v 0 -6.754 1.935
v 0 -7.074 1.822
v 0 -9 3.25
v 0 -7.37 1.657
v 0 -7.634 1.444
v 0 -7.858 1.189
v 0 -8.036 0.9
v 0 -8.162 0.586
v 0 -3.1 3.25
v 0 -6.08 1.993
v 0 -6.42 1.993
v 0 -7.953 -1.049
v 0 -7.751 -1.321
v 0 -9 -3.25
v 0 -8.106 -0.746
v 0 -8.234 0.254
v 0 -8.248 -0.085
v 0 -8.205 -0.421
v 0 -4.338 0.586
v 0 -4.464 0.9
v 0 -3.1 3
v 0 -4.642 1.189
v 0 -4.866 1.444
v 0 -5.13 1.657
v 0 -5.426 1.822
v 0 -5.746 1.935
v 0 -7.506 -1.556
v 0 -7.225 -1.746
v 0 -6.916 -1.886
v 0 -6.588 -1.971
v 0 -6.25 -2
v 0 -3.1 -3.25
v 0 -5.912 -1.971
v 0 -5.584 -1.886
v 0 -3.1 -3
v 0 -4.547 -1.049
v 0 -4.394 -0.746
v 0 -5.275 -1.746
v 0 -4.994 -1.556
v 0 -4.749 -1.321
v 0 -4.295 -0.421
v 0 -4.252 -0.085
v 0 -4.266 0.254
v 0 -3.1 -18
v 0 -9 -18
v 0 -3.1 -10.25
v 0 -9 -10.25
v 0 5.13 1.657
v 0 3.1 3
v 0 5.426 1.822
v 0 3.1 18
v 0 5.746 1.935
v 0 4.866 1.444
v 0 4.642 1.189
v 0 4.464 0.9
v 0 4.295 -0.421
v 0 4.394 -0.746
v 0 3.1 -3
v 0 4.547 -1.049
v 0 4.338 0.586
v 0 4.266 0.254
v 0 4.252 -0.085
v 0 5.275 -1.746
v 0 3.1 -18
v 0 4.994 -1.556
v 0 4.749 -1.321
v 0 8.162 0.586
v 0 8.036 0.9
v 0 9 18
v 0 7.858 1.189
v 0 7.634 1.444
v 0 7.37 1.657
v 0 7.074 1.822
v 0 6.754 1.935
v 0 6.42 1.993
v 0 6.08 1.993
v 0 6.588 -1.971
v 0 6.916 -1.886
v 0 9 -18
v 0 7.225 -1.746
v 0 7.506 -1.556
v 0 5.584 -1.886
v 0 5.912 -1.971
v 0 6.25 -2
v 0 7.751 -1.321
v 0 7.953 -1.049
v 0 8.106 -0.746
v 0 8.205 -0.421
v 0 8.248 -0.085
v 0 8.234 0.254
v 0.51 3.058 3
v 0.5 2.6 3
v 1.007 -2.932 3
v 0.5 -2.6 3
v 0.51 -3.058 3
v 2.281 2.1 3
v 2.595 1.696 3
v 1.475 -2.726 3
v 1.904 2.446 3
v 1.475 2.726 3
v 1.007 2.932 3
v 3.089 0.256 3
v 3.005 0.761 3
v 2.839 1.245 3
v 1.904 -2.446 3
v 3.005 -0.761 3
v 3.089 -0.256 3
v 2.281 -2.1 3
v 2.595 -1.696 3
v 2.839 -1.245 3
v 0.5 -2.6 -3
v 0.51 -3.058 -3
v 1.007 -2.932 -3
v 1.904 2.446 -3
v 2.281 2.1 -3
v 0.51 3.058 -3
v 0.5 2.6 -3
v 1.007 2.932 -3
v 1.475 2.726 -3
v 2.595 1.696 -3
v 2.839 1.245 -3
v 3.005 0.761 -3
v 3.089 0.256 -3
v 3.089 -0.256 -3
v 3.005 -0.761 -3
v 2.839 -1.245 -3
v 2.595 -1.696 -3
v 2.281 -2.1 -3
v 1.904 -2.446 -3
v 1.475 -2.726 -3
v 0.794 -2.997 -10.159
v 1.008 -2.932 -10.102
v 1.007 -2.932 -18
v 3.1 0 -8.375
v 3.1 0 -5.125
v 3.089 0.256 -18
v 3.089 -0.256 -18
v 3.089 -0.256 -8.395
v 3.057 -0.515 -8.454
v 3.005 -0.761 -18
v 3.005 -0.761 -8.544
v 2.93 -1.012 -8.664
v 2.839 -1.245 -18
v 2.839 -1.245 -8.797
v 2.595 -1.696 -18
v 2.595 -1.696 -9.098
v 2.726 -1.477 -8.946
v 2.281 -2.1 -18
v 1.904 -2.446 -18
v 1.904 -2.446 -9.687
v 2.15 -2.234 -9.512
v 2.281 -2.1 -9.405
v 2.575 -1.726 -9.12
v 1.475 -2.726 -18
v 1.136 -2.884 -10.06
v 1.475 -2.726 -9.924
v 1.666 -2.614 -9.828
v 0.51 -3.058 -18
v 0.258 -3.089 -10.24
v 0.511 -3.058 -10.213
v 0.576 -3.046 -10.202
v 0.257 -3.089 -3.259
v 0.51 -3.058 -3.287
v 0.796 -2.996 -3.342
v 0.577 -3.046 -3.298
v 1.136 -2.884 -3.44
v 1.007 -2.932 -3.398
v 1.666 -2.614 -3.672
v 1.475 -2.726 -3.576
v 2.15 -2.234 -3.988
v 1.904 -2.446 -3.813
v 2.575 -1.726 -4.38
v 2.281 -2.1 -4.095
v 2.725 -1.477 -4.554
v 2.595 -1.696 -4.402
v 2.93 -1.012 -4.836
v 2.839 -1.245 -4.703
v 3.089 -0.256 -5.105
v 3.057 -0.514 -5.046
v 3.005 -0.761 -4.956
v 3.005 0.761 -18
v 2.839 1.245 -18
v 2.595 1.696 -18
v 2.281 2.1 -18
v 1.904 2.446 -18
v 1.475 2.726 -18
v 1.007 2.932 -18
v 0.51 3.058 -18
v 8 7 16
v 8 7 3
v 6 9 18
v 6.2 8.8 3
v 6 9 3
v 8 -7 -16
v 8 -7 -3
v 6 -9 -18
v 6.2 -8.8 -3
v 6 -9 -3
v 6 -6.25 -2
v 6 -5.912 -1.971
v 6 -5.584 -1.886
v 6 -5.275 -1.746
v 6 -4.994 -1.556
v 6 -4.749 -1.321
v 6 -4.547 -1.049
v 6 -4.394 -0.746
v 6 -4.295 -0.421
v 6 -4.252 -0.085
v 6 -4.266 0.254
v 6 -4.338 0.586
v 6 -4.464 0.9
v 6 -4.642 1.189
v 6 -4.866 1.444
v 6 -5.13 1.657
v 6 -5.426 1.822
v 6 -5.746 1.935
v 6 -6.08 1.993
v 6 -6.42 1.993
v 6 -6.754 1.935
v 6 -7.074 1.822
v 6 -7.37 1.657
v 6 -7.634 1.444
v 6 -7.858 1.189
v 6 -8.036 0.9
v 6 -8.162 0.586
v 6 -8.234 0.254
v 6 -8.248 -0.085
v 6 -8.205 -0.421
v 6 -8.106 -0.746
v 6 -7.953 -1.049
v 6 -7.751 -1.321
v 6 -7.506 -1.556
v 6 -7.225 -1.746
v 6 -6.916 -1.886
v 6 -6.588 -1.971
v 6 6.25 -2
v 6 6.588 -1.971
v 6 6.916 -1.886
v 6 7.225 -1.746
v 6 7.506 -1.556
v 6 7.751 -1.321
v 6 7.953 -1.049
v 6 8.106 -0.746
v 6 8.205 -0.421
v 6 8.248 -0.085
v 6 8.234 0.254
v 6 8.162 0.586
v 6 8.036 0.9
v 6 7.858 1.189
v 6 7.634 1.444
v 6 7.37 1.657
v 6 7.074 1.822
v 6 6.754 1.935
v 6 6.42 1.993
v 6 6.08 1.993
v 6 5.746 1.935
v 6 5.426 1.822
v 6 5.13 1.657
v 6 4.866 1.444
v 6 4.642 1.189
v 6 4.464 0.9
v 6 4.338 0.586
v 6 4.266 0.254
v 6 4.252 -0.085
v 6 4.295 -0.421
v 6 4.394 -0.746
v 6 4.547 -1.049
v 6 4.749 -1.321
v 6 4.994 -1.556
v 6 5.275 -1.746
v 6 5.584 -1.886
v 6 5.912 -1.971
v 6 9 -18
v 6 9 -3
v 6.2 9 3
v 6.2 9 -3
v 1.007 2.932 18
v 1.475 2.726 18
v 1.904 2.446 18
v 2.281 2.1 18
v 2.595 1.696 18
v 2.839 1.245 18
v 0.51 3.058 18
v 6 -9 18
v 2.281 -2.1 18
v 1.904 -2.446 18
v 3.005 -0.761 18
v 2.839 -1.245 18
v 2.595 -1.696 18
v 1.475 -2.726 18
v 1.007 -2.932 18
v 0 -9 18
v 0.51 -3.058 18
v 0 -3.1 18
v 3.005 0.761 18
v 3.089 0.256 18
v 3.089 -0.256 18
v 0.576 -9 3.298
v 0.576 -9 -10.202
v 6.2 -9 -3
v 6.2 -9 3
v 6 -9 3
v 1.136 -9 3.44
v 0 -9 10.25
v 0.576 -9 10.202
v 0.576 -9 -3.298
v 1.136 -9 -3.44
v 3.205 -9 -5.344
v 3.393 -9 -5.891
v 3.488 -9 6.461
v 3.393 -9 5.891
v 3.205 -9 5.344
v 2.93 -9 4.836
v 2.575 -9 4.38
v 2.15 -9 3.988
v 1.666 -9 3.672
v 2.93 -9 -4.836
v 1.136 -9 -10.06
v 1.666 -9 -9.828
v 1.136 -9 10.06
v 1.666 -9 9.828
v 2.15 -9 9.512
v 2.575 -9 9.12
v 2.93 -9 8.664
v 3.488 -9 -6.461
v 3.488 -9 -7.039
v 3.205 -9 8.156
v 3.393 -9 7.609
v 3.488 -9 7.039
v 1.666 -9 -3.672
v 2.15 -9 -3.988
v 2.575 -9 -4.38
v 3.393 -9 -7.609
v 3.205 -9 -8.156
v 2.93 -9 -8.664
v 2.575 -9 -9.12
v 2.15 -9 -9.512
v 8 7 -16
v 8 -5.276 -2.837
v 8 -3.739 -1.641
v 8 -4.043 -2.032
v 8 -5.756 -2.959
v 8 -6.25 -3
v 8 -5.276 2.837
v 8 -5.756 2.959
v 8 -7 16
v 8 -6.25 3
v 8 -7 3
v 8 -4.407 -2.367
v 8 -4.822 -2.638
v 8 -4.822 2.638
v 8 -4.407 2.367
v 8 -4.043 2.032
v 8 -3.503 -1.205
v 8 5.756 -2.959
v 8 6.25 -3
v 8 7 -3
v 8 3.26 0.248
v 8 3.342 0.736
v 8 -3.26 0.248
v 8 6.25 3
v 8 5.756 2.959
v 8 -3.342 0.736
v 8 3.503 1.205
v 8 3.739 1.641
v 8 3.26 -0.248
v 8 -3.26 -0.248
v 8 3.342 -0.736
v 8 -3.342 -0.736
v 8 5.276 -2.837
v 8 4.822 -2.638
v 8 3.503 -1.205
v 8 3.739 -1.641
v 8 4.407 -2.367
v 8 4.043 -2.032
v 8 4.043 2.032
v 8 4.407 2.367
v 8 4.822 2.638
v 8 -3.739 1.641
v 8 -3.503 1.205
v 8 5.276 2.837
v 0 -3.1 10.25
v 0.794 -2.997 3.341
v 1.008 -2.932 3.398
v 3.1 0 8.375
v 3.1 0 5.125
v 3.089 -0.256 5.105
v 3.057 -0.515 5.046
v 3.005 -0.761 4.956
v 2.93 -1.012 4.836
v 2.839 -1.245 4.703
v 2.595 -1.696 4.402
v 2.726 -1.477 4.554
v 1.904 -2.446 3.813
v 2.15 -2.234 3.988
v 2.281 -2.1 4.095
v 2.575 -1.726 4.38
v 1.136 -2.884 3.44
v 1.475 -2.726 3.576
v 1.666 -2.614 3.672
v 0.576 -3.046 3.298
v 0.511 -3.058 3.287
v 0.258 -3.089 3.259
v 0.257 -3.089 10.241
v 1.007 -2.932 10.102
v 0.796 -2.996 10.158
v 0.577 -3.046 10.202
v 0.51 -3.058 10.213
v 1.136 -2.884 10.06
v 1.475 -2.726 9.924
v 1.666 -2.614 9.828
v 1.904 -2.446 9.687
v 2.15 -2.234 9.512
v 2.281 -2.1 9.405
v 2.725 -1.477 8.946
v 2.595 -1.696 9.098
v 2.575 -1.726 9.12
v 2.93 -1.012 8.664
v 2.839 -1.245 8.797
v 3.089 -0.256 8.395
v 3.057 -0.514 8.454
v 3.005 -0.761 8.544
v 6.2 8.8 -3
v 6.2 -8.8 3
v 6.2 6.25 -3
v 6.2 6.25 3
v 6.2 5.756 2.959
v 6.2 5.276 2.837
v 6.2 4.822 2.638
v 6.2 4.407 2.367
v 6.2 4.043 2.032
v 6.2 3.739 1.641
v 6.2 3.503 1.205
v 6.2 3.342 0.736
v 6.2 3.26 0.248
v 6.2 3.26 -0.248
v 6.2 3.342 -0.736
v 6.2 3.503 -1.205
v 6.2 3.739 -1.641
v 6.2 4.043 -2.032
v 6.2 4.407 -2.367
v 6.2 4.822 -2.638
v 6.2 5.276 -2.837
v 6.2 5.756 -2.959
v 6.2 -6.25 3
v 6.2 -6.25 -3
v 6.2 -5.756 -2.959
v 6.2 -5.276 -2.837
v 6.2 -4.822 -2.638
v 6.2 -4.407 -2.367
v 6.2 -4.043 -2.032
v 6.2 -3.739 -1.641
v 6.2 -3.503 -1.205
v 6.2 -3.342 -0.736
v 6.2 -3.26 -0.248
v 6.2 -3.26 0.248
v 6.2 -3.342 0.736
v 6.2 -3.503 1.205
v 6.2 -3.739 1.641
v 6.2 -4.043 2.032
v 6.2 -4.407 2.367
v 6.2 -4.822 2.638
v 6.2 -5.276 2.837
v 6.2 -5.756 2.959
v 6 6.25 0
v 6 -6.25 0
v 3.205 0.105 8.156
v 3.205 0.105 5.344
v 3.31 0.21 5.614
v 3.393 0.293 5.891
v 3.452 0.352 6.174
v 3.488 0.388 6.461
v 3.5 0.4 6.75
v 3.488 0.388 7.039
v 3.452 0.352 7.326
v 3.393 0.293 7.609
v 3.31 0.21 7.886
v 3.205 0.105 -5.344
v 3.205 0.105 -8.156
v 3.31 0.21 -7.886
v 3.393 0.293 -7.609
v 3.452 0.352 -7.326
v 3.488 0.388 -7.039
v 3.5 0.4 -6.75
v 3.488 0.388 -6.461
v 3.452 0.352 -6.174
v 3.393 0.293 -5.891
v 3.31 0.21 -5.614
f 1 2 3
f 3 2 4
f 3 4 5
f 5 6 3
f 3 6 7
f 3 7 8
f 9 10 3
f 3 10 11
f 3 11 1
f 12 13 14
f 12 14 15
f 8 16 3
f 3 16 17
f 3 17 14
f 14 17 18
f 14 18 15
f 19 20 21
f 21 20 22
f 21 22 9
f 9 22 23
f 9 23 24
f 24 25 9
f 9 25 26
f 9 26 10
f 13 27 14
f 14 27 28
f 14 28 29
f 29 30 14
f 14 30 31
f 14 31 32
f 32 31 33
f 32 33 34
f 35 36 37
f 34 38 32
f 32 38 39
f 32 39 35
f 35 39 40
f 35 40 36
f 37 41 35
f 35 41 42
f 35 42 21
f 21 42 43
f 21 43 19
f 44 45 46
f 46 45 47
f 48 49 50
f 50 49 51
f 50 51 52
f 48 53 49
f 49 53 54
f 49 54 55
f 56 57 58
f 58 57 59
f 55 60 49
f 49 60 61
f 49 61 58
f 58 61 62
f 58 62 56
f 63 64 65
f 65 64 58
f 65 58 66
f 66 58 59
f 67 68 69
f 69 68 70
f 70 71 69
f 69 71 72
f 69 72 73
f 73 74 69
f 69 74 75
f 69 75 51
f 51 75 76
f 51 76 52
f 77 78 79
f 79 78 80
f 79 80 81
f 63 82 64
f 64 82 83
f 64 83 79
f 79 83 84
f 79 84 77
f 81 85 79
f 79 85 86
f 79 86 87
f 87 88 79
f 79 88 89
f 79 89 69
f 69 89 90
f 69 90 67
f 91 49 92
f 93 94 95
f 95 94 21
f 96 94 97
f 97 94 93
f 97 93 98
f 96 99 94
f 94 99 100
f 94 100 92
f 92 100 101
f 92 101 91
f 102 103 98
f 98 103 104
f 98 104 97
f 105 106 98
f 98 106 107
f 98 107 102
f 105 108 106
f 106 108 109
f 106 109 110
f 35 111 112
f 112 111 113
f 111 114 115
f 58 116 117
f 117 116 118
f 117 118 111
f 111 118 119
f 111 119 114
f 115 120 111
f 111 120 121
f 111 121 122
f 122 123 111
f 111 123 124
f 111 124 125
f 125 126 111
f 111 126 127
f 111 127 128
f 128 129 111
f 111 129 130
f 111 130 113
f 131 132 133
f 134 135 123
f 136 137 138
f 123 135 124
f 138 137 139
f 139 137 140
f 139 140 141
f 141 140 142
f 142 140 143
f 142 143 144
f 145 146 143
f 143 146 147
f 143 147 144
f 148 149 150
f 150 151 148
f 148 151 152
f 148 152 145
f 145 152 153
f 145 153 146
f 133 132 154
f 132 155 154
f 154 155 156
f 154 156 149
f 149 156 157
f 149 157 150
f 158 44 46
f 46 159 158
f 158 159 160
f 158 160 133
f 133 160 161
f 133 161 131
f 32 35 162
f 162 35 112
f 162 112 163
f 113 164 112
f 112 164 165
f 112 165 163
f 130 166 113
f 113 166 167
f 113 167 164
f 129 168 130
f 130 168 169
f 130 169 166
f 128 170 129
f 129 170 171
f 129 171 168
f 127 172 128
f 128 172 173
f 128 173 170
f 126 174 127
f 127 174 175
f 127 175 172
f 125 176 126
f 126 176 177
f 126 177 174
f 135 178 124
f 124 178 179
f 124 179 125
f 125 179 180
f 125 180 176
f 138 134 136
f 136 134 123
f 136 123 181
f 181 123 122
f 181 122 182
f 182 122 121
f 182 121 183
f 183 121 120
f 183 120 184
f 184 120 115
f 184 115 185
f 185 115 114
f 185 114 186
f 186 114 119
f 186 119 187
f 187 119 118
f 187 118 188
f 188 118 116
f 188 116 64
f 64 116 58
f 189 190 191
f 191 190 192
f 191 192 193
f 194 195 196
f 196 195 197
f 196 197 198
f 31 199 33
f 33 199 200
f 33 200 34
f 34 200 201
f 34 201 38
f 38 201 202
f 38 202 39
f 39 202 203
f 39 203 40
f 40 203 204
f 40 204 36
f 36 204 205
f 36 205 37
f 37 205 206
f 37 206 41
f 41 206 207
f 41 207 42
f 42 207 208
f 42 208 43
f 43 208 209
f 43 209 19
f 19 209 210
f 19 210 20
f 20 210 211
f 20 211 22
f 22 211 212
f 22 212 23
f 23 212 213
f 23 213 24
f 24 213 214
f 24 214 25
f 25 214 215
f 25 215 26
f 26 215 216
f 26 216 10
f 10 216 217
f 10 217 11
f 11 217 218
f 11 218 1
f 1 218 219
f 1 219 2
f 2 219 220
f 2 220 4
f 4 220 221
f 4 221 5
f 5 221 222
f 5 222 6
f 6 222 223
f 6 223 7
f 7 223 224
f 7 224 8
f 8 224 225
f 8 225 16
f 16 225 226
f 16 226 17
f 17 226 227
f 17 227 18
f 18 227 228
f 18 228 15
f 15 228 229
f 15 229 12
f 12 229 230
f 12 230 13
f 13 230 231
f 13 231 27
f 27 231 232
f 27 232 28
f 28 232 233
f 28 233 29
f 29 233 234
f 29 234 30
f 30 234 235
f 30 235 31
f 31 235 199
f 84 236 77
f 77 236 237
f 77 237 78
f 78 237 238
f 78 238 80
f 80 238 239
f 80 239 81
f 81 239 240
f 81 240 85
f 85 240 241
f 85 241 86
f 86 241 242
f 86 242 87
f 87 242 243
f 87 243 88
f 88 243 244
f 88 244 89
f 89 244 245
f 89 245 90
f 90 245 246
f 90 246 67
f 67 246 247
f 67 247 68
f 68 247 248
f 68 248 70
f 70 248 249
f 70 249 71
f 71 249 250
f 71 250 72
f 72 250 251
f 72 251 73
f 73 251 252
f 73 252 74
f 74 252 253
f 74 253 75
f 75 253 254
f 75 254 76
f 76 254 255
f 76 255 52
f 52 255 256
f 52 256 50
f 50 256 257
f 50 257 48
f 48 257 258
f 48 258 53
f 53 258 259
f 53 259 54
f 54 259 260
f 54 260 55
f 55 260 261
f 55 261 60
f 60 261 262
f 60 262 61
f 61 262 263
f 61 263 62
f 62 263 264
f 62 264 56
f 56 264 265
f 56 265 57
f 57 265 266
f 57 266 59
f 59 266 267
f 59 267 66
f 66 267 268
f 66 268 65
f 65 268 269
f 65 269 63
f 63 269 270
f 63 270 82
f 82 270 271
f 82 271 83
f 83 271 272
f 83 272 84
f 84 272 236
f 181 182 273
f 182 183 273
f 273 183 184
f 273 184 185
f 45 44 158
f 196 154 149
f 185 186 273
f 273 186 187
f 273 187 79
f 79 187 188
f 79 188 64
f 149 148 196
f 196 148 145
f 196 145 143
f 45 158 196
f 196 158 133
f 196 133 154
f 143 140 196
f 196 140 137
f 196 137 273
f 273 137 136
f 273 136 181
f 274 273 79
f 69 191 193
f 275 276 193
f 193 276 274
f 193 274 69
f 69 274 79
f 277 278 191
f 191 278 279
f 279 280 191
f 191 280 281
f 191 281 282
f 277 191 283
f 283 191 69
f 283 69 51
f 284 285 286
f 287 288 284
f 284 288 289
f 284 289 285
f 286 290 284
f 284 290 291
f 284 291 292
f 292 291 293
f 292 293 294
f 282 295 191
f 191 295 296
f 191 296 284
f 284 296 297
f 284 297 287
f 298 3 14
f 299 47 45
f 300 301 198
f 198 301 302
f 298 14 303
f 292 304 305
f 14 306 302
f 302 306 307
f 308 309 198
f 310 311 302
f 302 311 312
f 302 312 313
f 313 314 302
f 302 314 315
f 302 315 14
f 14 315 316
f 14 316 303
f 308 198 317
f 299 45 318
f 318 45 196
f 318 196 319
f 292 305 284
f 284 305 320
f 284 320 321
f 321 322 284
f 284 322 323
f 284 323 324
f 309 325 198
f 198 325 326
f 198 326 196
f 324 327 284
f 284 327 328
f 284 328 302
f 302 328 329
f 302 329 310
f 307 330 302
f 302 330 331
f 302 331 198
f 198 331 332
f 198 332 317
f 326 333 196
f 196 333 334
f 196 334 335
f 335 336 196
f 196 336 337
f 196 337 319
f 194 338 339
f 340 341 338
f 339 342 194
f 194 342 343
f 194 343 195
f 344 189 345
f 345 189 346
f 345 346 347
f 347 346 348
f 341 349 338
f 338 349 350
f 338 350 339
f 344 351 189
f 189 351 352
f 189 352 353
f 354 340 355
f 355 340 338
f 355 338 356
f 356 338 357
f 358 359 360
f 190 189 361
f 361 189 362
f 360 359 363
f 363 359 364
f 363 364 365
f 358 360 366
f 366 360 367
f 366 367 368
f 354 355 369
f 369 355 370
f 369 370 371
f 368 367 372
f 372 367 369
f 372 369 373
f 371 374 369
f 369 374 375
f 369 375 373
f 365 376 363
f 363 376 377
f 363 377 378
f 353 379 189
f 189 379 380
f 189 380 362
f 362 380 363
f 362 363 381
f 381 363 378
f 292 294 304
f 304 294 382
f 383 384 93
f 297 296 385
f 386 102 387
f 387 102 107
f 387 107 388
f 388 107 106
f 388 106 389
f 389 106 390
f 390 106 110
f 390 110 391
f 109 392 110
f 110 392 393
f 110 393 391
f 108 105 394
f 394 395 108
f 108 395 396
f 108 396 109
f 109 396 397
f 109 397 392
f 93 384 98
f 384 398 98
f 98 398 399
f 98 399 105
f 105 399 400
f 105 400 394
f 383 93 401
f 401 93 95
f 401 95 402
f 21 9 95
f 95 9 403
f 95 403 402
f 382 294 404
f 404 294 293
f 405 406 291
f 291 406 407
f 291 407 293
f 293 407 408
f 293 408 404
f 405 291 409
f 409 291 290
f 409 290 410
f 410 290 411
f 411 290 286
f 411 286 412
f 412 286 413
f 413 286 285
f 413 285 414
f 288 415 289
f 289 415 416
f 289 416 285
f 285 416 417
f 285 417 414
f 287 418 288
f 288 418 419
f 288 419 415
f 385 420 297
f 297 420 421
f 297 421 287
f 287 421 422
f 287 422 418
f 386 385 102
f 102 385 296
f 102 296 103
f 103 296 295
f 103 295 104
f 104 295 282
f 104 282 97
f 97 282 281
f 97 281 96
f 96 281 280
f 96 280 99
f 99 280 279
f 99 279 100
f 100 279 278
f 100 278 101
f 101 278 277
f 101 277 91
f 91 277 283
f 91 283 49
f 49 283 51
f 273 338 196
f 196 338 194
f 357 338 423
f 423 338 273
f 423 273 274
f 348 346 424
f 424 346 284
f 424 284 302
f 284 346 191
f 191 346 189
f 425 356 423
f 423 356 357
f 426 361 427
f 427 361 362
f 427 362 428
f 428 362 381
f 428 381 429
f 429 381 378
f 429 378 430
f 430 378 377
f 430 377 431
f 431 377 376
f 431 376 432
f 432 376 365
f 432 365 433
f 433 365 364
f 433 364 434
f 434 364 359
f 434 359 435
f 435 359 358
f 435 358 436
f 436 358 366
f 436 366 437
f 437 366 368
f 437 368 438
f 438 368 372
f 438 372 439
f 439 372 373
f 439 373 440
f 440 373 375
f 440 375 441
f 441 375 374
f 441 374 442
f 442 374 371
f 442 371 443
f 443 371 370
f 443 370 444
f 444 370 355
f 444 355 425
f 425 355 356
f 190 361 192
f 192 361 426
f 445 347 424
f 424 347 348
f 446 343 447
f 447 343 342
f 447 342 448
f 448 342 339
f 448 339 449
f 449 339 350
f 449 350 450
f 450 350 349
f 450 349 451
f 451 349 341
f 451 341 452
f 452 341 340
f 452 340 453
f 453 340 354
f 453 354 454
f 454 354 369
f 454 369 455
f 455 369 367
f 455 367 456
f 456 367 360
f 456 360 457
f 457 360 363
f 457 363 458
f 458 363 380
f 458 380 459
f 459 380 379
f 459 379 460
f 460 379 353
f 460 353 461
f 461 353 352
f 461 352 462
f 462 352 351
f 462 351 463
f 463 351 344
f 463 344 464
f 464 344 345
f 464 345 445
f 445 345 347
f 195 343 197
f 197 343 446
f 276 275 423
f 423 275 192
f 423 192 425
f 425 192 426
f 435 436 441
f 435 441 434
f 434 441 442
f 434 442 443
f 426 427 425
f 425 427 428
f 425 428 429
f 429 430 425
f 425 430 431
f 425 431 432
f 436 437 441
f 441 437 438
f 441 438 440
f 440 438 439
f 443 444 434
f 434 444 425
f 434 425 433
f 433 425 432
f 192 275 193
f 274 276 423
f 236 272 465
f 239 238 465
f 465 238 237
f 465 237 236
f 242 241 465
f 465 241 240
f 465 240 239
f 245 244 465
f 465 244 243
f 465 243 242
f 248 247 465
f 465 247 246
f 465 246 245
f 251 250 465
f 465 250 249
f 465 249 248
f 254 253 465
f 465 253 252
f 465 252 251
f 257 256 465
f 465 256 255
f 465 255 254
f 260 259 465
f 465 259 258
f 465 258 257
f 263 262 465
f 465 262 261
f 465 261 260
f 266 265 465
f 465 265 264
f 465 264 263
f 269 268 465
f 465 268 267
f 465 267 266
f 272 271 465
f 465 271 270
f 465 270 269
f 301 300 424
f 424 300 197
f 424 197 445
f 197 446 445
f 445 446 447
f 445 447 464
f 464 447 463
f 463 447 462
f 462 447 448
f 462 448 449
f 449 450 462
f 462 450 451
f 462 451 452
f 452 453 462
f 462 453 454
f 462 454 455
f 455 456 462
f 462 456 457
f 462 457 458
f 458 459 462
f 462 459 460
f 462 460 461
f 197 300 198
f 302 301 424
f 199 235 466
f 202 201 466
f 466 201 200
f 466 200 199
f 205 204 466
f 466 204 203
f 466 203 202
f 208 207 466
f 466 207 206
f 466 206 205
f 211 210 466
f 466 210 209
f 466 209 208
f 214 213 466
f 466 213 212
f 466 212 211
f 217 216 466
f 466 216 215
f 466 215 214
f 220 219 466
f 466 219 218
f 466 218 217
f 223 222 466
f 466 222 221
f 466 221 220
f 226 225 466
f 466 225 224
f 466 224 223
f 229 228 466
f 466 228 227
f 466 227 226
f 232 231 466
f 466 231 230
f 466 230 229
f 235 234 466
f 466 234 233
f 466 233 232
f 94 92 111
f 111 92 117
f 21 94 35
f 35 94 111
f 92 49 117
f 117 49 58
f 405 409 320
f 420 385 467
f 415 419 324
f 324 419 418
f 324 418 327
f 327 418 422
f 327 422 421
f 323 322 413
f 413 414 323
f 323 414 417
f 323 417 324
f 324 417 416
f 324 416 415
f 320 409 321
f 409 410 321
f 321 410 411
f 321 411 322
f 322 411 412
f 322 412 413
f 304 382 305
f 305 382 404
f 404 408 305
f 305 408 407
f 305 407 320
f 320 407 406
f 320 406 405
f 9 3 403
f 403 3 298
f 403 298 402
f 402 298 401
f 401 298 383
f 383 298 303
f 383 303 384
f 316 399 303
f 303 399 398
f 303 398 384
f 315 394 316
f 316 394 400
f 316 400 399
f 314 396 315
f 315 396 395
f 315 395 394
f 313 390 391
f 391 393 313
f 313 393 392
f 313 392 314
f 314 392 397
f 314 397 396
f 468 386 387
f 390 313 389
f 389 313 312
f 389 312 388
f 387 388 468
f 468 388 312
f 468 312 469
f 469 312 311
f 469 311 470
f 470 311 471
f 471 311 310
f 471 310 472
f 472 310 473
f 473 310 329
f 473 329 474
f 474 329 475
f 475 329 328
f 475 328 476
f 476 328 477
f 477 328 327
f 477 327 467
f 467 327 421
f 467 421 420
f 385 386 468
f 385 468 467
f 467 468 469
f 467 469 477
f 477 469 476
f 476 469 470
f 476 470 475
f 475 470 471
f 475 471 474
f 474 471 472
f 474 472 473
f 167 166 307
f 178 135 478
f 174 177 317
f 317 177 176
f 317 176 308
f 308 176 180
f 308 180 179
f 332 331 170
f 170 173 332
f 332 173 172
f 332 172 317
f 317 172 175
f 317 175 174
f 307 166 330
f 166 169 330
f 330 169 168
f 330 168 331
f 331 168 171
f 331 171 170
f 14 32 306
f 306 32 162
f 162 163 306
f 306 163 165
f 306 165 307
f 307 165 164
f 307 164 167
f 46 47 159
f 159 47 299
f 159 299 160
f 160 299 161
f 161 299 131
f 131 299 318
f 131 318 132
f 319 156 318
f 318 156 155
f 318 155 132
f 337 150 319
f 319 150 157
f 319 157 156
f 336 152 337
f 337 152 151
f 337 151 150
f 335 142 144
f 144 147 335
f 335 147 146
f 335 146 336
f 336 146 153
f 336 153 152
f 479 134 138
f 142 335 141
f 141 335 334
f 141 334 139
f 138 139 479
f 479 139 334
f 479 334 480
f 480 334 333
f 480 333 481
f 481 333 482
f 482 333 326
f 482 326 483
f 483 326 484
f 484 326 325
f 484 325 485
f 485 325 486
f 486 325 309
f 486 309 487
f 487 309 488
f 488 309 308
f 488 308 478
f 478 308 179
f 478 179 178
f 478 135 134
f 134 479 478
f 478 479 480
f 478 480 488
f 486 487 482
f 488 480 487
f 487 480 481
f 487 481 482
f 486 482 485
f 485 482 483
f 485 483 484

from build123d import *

# Parameters (mm, degrees)
SKETCH_1_W              = 36
SKETCH_1_H              = 18
EXTRUDE_1_DEPTH         = 8
CUT_EXTRUDE_1_DEPTH     = 38.960505792
CHAMFER_1_SIZE          = 2
CUT_EXTRUDE_2_DEPTH     = 22.656407828
CUT_EXTRUDE_START       = -2
CUT_EXTRUDE_3_OUTLINE_R = 2
CUT_EXTRUDE_3_DEPTH     = 2
EXTRUDE_2_DEPTH         = 0.2
EXTRUDE_3_DEPTH         = 3
SKETCH_7_W              = 6
SKETCH_7_H              = 6.2
CUT_EXTRUDE_4_DEPTH     = 0.5
CHAMFER_16_SIZE         = 0.5
CUT_EXTRUDE_5_REACH     = 28.683


# Read off the part's stored shape, not the designer's step: Вырез-Вытянуть3
with BuildPart() as part:
    # Эскиз1 → Бобышка-Вытянуть1 (new body)
    with BuildSketch(Plane(origin=(0, 0, 0), x_dir=(0, 0, -1), z_dir=(1, 0, 0))):
        Rectangle(SKETCH_1_W, SKETCH_1_H)
    extrude(amount=EXTRUDE_1_DEPTH)

    # Эскиз2 → Вырез-Вытянуть1 (cut, through all)
    with BuildSketch(Plane.XY.offset(18)):
        with BuildLine():
            ThreePointArc((0, -3.1), (3.1, 0), (0, 3.1))
            Line((0, 3.1), (0, -3.1))
        make_face()
    extrude(amount=-CUT_EXTRUDE_1_DEPTH, mode=Mode.SUBTRACT)

    # Фаска1
    chamfer_1_edges = [part.edges().sort_by_distance(p)[0] for p in [
        (8, 0, 18),
        (8, -9, 0),
        (8, 0, -18),
        (8, 9, 0),
    ]]
    chamfer(chamfer_1_edges, length=CHAMFER_1_SIZE)

    # Эскиз3 → Вырез-Вытянуть2 (cut, through all)
    with BuildSketch(Plane(origin=(8, 0, 0), x_dir=(0, 0, -1), z_dir=(1, 0, 0))):
        with BuildLine():
            ThreePointArc((1.413329403, 7), (1.552631161, 6.636440782), (1.6, 6.25))
            ThreePointArc((1.6, 6.25), (-0.386440782, 4.697368839), (-1.413329403, 7))
            Line((-1.413329403, 7), (-1.854049622, 7))
            ThreePointArc((-1.854049622, 7), (-0.382034525, 4.286826645), (2, 6.25))
            ThreePointArc((2, 6.25), (1.963173355, 6.632034525), (1.854049622, 7))
            Line((1.854049622, 7), (1.413329403, 7))
        make_face()
        with BuildLine():
            ThreePointArc((-1.413329403, 7), (0, 7.85), (1.413329403, 7))
            Line((1.413329403, 7), (1.854049622, 7))
            ThreePointArc((1.854049622, 7), (0, 8.25), (-1.854049622, 7))
            Line((-1.854049622, 7), (-1.413329403, 7))
        make_face()
        with BuildLine():
            ThreePointArc((-1.413329403, 7), (-0.386440782, 4.697368839), (1.6, 6.25))
            ThreePointArc((1.6, 6.25), (1.552631161, 6.636440782), (1.413329403, 7))
            Line((1.413329403, 7), (-1.413329403, 7))
        make_face()
        with BuildLine():
            Line((-1.413329403, 7), (1.413329403, 7))
            ThreePointArc((1.413329403, 7), (0, 7.85), (-1.413329403, 7))
        make_face()
        with BuildLine():
            ThreePointArc((-1.413329403, -7), (-0.386440782, -4.697368839), (1.6, -6.25))
            ThreePointArc((1.6, -6.25), (1.552631161, -6.636440782), (1.413329403, -7))
            Line((1.413329403, -7), (1.854049622, -7))
            ThreePointArc((1.854049622, -7), (1.963173355, -6.632034525), (2, -6.25))
            ThreePointArc((2, -6.25), (-0.382034525, -4.286826645), (-1.854049622, -7))
            Line((-1.854049622, -7), (-1.413329403, -7))
        make_face()
        with BuildLine():
            ThreePointArc((1.413329403, -7), (0, -7.85), (-1.413329403, -7))
            Line((-1.413329403, -7), (-1.854049622, -7))
            ThreePointArc((-1.854049622, -7), (0, -8.25), (1.854049622, -7))
            Line((1.854049622, -7), (1.413329403, -7))
        make_face()
        with BuildLine():
            ThreePointArc((1.413329403, -7), (1.552631161, -6.636440782), (1.6, -6.25))
            ThreePointArc((1.6, -6.25), (-0.386440782, -4.697368839), (-1.413329403, -7))
            Line((-1.413329403, -7), (1.413329403, -7))
        make_face()
        with BuildLine():
            Line((1.413329403, -7), (-1.413329403, -7))
            ThreePointArc((-1.413329403, -7), (0, -7.85), (1.413329403, -7))
        make_face()
    extrude(amount=-CUT_EXTRUDE_2_DEPTH, mode=Mode.SUBTRACT)

    # Вырез-Вытянуть3 outline → Вырез-Вытянуть3 (cut)
    # profile 1 of 2: a face of its own
    with BuildSketch(Plane(origin=(8, 0, 0), x_dir=(0, 0, -1), z_dir=(1, 0, 0)).offset(CUT_EXTRUDE_START)):
        with BuildLine():
            Line((-3, 9), (-3, 6.25))
            ThreePointArc((-3, 6.25), (0, 3.25), (3, 6.25))
            Line((3, 6.25), (3, 9))
            Line((3, 9), (-3, 9))
        make_face()
        with Locations((0, 6.25)):
            Circle(CUT_EXTRUDE_3_OUTLINE_R, mode=Mode.SUBTRACT)
    # profile 2 of 2: a face of its own
    with BuildSketch(Plane(origin=(8, 0, 0), x_dir=(0, 0, -1), z_dir=(1, 0, 0)).offset(CUT_EXTRUDE_START)):
        with BuildLine():
            Line((3, -9), (3, -6.25))
            ThreePointArc((3, -6.25), (0, -3.25), (-3, -6.25))
            Line((-3, -6.25), (-3, -9))
            Line((-3, -9), (3, -9))
        make_face()
        with Locations((0, -6.25)):
            Circle(CUT_EXTRUDE_3_OUTLINE_R, mode=Mode.SUBTRACT)
    extrude(amount=CUT_EXTRUDE_3_DEPTH, mode=Mode.SUBTRACT)

    # Эскиз5 → Бобышка-Вытянуть2 (add)
    with BuildSketch(Plane(origin=(6, 0, 0), x_dir=(0, 0, -1), z_dir=(1, 0, 0))):
        with BuildLine():
            Line((3, 9), (-3, 9))
            Line((-3, 9), (-3, 6.25))
            ThreePointArc((-3, 6.25), (0, 3.25), (3, 6.25))
            Line((3, 6.25), (3, 9))
        make_face()
        with BuildLine():
            Line((-3, -9), (3, -9))
            Line((3, -9), (3, -6.25))
            ThreePointArc((3, -6.25), (0, -3.25), (-3, -6.25))
            Line((-3, -6.25), (-3, -9))
        make_face()
    extrude(amount=EXTRUDE_2_DEPTH)

    # Эскиз6 → Бобышка-Вытянуть3 (add, symmetric)
    with BuildSketch(Plane.XY):
        with BuildLine():
            Line((0, 3.1), (0, -3.1))
            ThreePointArc((0, -3.1), (3.1, 0), (0, 3.1))
        make_face()
    extrude(amount=EXTRUDE_3_DEPTH, both=True)

    # Эскиз7 → Вырез-Вытянуть4 (cut, symmetric)
    with BuildSketch(Plane.ZY):
        Rectangle(SKETCH_7_W, SKETCH_7_H)
    extrude(amount=CUT_EXTRUDE_4_DEPTH, both=True, mode=Mode.SUBTRACT)

    # Фаска16
    # the kernel refuses this chamfer: 0.5 mm, written as the material it adds along each edge
    with BuildSketch(Plane(origin=(0.5, 3.1, 3), x_dir=(-0.9996219169112968, 0.027495876610586494, 0), z_dir=(0, 0, -1))) as chamfer_16_piece_1_section:
        Polygon((CHAMFER_16_SIZE * 0.999621916911, -CHAMFER_16_SIZE * 0.0274958766106), (-CHAMFER_16_SIZE * 0.0274958766106, -CHAMFER_16_SIZE * 0.999621916911), (0, 0), align=None)
    chamfer_16_piece_1 = extrude(amount=6, mode=Mode.PRIVATE)
    chamfer_16_piece_1 = split(chamfer_16_piece_1, bisect_by=Plane(origin=(0, 2.934797923, 0), z_dir=(1, 0, 0)), keep=Keep.TOP, mode=Mode.PRIVATE)
    add(chamfer_16_piece_1)
    with BuildSketch(Plane(origin=(0.5, -3.1, -3), x_dir=(-0.9996219169112968, -0.027495876610586494, 0), z_dir=(0, 0, 1))) as chamfer_16_piece_2_section:
        Polygon((CHAMFER_16_SIZE * 0.999621916911, -CHAMFER_16_SIZE * 0.0274958766106), (-CHAMFER_16_SIZE * 0.0274958766106, -CHAMFER_16_SIZE * 0.999621916911), (0, 0), align=None)
    chamfer_16_piece_2 = extrude(amount=6, mode=Mode.PRIVATE)
    chamfer_16_piece_2 = split(chamfer_16_piece_2, bisect_by=Plane(origin=(0, -2.934797923, 0), z_dir=(1, 0, 0)), keep=Keep.TOP, mode=Mode.PRIVATE)
    add(chamfer_16_piece_2)

    # Вырез-Вытянуть5: up to this plane
    cut_extrude_5_end = Plane(origin=(0.5, -2.6, 0), z_dir=(0.7071067811865525, -0.7071067811865426, 0))
    # Эскиз8 → Вырез-Вытянуть5 (cut, up to the surface)
    with BuildSketch(Plane.XZ.offset(9), mode=Mode.PRIVATE) as cut_extrude_5_sk1:
        with BuildLine():
            ThreePointArc((3.5, 6.75), (2.474873734, 9.224873734), (0, 10.25))
            Line((0, 10.25), (0, 3.25))
            ThreePointArc((0, 3.25), (2.474873734, 4.275126266), (3.5, 6.75))
        make_face()
    cut_extrude_5_tool1 = split(extrude(cut_extrude_5_sk1.sketch, amount=-CUT_EXTRUDE_5_REACH, mode=Mode.PRIVATE), bisect_by=cut_extrude_5_end, keep=Keep.BOTH, mode=Mode.PRIVATE)
    add(cut_extrude_5_tool1.solids().sort_by_distance((1.485446, -9, 6.75))[0], mode=Mode.SUBTRACT)
    # Эскиз8 → Вырез-Вытянуть5 (cut, up to the surface)
    with BuildSketch(Plane.XZ.offset(9), mode=Mode.PRIVATE) as cut_extrude_5_sk2:
        with BuildLine():
            Line((0, 3.25), (0, 10.25))
            ThreePointArc((0, 10.25), (-3.5, 6.75), (0, 3.25))
        make_face()
    cut_extrude_5_tool2 = split(extrude(cut_extrude_5_sk2.sketch, amount=-CUT_EXTRUDE_5_REACH, mode=Mode.PRIVATE), bisect_by=cut_extrude_5_end, keep=Keep.BOTH, mode=Mode.PRIVATE)
    add(cut_extrude_5_tool2.solids().sort_by_distance((-1.485446, -9, 6.75))[0], mode=Mode.SUBTRACT)
    # Эскиз8 → Вырез-Вытянуть5 (cut, up to the surface)
    with BuildSketch(Plane.XZ.offset(9), mode=Mode.PRIVATE) as cut_extrude_5_sk3:
        with BuildLine():
            ThreePointArc((3.5, -6.75), (2.474873734, -4.275126266), (0, -3.25))
            Line((0, -3.25), (0, -10.25))
            ThreePointArc((0, -10.25), (2.474873734, -9.224873734), (3.5, -6.75))
        make_face()
    cut_extrude_5_tool3 = split(extrude(cut_extrude_5_sk3.sketch, amount=-CUT_EXTRUDE_5_REACH, mode=Mode.PRIVATE), bisect_by=cut_extrude_5_end, keep=Keep.BOTH, mode=Mode.PRIVATE)
    add(cut_extrude_5_tool3.solids().sort_by_distance((1.485446, -9, -6.75))[0], mode=Mode.SUBTRACT)
    # Эскиз8 → Вырез-Вытянуть5 (cut, up to the surface)
    with BuildSketch(Plane.XZ.offset(9), mode=Mode.PRIVATE) as cut_extrude_5_sk4:
        with BuildLine():
            Line((0, -10.25), (0, -3.25))
            ThreePointArc((0, -3.25), (-3.5, -6.75), (0, -10.25))
        make_face()
    cut_extrude_5_tool4 = split(extrude(cut_extrude_5_sk4.sketch, amount=-CUT_EXTRUDE_5_REACH, mode=Mode.PRIVATE), bisect_by=cut_extrude_5_end, keep=Keep.BOTH, mode=Mode.PRIVATE)
    add(cut_extrude_5_tool4.solids().sort_by_distance((-1.485446, -9, -6.75))[0], mode=Mode.SUBTRACT)


solid = part.part
